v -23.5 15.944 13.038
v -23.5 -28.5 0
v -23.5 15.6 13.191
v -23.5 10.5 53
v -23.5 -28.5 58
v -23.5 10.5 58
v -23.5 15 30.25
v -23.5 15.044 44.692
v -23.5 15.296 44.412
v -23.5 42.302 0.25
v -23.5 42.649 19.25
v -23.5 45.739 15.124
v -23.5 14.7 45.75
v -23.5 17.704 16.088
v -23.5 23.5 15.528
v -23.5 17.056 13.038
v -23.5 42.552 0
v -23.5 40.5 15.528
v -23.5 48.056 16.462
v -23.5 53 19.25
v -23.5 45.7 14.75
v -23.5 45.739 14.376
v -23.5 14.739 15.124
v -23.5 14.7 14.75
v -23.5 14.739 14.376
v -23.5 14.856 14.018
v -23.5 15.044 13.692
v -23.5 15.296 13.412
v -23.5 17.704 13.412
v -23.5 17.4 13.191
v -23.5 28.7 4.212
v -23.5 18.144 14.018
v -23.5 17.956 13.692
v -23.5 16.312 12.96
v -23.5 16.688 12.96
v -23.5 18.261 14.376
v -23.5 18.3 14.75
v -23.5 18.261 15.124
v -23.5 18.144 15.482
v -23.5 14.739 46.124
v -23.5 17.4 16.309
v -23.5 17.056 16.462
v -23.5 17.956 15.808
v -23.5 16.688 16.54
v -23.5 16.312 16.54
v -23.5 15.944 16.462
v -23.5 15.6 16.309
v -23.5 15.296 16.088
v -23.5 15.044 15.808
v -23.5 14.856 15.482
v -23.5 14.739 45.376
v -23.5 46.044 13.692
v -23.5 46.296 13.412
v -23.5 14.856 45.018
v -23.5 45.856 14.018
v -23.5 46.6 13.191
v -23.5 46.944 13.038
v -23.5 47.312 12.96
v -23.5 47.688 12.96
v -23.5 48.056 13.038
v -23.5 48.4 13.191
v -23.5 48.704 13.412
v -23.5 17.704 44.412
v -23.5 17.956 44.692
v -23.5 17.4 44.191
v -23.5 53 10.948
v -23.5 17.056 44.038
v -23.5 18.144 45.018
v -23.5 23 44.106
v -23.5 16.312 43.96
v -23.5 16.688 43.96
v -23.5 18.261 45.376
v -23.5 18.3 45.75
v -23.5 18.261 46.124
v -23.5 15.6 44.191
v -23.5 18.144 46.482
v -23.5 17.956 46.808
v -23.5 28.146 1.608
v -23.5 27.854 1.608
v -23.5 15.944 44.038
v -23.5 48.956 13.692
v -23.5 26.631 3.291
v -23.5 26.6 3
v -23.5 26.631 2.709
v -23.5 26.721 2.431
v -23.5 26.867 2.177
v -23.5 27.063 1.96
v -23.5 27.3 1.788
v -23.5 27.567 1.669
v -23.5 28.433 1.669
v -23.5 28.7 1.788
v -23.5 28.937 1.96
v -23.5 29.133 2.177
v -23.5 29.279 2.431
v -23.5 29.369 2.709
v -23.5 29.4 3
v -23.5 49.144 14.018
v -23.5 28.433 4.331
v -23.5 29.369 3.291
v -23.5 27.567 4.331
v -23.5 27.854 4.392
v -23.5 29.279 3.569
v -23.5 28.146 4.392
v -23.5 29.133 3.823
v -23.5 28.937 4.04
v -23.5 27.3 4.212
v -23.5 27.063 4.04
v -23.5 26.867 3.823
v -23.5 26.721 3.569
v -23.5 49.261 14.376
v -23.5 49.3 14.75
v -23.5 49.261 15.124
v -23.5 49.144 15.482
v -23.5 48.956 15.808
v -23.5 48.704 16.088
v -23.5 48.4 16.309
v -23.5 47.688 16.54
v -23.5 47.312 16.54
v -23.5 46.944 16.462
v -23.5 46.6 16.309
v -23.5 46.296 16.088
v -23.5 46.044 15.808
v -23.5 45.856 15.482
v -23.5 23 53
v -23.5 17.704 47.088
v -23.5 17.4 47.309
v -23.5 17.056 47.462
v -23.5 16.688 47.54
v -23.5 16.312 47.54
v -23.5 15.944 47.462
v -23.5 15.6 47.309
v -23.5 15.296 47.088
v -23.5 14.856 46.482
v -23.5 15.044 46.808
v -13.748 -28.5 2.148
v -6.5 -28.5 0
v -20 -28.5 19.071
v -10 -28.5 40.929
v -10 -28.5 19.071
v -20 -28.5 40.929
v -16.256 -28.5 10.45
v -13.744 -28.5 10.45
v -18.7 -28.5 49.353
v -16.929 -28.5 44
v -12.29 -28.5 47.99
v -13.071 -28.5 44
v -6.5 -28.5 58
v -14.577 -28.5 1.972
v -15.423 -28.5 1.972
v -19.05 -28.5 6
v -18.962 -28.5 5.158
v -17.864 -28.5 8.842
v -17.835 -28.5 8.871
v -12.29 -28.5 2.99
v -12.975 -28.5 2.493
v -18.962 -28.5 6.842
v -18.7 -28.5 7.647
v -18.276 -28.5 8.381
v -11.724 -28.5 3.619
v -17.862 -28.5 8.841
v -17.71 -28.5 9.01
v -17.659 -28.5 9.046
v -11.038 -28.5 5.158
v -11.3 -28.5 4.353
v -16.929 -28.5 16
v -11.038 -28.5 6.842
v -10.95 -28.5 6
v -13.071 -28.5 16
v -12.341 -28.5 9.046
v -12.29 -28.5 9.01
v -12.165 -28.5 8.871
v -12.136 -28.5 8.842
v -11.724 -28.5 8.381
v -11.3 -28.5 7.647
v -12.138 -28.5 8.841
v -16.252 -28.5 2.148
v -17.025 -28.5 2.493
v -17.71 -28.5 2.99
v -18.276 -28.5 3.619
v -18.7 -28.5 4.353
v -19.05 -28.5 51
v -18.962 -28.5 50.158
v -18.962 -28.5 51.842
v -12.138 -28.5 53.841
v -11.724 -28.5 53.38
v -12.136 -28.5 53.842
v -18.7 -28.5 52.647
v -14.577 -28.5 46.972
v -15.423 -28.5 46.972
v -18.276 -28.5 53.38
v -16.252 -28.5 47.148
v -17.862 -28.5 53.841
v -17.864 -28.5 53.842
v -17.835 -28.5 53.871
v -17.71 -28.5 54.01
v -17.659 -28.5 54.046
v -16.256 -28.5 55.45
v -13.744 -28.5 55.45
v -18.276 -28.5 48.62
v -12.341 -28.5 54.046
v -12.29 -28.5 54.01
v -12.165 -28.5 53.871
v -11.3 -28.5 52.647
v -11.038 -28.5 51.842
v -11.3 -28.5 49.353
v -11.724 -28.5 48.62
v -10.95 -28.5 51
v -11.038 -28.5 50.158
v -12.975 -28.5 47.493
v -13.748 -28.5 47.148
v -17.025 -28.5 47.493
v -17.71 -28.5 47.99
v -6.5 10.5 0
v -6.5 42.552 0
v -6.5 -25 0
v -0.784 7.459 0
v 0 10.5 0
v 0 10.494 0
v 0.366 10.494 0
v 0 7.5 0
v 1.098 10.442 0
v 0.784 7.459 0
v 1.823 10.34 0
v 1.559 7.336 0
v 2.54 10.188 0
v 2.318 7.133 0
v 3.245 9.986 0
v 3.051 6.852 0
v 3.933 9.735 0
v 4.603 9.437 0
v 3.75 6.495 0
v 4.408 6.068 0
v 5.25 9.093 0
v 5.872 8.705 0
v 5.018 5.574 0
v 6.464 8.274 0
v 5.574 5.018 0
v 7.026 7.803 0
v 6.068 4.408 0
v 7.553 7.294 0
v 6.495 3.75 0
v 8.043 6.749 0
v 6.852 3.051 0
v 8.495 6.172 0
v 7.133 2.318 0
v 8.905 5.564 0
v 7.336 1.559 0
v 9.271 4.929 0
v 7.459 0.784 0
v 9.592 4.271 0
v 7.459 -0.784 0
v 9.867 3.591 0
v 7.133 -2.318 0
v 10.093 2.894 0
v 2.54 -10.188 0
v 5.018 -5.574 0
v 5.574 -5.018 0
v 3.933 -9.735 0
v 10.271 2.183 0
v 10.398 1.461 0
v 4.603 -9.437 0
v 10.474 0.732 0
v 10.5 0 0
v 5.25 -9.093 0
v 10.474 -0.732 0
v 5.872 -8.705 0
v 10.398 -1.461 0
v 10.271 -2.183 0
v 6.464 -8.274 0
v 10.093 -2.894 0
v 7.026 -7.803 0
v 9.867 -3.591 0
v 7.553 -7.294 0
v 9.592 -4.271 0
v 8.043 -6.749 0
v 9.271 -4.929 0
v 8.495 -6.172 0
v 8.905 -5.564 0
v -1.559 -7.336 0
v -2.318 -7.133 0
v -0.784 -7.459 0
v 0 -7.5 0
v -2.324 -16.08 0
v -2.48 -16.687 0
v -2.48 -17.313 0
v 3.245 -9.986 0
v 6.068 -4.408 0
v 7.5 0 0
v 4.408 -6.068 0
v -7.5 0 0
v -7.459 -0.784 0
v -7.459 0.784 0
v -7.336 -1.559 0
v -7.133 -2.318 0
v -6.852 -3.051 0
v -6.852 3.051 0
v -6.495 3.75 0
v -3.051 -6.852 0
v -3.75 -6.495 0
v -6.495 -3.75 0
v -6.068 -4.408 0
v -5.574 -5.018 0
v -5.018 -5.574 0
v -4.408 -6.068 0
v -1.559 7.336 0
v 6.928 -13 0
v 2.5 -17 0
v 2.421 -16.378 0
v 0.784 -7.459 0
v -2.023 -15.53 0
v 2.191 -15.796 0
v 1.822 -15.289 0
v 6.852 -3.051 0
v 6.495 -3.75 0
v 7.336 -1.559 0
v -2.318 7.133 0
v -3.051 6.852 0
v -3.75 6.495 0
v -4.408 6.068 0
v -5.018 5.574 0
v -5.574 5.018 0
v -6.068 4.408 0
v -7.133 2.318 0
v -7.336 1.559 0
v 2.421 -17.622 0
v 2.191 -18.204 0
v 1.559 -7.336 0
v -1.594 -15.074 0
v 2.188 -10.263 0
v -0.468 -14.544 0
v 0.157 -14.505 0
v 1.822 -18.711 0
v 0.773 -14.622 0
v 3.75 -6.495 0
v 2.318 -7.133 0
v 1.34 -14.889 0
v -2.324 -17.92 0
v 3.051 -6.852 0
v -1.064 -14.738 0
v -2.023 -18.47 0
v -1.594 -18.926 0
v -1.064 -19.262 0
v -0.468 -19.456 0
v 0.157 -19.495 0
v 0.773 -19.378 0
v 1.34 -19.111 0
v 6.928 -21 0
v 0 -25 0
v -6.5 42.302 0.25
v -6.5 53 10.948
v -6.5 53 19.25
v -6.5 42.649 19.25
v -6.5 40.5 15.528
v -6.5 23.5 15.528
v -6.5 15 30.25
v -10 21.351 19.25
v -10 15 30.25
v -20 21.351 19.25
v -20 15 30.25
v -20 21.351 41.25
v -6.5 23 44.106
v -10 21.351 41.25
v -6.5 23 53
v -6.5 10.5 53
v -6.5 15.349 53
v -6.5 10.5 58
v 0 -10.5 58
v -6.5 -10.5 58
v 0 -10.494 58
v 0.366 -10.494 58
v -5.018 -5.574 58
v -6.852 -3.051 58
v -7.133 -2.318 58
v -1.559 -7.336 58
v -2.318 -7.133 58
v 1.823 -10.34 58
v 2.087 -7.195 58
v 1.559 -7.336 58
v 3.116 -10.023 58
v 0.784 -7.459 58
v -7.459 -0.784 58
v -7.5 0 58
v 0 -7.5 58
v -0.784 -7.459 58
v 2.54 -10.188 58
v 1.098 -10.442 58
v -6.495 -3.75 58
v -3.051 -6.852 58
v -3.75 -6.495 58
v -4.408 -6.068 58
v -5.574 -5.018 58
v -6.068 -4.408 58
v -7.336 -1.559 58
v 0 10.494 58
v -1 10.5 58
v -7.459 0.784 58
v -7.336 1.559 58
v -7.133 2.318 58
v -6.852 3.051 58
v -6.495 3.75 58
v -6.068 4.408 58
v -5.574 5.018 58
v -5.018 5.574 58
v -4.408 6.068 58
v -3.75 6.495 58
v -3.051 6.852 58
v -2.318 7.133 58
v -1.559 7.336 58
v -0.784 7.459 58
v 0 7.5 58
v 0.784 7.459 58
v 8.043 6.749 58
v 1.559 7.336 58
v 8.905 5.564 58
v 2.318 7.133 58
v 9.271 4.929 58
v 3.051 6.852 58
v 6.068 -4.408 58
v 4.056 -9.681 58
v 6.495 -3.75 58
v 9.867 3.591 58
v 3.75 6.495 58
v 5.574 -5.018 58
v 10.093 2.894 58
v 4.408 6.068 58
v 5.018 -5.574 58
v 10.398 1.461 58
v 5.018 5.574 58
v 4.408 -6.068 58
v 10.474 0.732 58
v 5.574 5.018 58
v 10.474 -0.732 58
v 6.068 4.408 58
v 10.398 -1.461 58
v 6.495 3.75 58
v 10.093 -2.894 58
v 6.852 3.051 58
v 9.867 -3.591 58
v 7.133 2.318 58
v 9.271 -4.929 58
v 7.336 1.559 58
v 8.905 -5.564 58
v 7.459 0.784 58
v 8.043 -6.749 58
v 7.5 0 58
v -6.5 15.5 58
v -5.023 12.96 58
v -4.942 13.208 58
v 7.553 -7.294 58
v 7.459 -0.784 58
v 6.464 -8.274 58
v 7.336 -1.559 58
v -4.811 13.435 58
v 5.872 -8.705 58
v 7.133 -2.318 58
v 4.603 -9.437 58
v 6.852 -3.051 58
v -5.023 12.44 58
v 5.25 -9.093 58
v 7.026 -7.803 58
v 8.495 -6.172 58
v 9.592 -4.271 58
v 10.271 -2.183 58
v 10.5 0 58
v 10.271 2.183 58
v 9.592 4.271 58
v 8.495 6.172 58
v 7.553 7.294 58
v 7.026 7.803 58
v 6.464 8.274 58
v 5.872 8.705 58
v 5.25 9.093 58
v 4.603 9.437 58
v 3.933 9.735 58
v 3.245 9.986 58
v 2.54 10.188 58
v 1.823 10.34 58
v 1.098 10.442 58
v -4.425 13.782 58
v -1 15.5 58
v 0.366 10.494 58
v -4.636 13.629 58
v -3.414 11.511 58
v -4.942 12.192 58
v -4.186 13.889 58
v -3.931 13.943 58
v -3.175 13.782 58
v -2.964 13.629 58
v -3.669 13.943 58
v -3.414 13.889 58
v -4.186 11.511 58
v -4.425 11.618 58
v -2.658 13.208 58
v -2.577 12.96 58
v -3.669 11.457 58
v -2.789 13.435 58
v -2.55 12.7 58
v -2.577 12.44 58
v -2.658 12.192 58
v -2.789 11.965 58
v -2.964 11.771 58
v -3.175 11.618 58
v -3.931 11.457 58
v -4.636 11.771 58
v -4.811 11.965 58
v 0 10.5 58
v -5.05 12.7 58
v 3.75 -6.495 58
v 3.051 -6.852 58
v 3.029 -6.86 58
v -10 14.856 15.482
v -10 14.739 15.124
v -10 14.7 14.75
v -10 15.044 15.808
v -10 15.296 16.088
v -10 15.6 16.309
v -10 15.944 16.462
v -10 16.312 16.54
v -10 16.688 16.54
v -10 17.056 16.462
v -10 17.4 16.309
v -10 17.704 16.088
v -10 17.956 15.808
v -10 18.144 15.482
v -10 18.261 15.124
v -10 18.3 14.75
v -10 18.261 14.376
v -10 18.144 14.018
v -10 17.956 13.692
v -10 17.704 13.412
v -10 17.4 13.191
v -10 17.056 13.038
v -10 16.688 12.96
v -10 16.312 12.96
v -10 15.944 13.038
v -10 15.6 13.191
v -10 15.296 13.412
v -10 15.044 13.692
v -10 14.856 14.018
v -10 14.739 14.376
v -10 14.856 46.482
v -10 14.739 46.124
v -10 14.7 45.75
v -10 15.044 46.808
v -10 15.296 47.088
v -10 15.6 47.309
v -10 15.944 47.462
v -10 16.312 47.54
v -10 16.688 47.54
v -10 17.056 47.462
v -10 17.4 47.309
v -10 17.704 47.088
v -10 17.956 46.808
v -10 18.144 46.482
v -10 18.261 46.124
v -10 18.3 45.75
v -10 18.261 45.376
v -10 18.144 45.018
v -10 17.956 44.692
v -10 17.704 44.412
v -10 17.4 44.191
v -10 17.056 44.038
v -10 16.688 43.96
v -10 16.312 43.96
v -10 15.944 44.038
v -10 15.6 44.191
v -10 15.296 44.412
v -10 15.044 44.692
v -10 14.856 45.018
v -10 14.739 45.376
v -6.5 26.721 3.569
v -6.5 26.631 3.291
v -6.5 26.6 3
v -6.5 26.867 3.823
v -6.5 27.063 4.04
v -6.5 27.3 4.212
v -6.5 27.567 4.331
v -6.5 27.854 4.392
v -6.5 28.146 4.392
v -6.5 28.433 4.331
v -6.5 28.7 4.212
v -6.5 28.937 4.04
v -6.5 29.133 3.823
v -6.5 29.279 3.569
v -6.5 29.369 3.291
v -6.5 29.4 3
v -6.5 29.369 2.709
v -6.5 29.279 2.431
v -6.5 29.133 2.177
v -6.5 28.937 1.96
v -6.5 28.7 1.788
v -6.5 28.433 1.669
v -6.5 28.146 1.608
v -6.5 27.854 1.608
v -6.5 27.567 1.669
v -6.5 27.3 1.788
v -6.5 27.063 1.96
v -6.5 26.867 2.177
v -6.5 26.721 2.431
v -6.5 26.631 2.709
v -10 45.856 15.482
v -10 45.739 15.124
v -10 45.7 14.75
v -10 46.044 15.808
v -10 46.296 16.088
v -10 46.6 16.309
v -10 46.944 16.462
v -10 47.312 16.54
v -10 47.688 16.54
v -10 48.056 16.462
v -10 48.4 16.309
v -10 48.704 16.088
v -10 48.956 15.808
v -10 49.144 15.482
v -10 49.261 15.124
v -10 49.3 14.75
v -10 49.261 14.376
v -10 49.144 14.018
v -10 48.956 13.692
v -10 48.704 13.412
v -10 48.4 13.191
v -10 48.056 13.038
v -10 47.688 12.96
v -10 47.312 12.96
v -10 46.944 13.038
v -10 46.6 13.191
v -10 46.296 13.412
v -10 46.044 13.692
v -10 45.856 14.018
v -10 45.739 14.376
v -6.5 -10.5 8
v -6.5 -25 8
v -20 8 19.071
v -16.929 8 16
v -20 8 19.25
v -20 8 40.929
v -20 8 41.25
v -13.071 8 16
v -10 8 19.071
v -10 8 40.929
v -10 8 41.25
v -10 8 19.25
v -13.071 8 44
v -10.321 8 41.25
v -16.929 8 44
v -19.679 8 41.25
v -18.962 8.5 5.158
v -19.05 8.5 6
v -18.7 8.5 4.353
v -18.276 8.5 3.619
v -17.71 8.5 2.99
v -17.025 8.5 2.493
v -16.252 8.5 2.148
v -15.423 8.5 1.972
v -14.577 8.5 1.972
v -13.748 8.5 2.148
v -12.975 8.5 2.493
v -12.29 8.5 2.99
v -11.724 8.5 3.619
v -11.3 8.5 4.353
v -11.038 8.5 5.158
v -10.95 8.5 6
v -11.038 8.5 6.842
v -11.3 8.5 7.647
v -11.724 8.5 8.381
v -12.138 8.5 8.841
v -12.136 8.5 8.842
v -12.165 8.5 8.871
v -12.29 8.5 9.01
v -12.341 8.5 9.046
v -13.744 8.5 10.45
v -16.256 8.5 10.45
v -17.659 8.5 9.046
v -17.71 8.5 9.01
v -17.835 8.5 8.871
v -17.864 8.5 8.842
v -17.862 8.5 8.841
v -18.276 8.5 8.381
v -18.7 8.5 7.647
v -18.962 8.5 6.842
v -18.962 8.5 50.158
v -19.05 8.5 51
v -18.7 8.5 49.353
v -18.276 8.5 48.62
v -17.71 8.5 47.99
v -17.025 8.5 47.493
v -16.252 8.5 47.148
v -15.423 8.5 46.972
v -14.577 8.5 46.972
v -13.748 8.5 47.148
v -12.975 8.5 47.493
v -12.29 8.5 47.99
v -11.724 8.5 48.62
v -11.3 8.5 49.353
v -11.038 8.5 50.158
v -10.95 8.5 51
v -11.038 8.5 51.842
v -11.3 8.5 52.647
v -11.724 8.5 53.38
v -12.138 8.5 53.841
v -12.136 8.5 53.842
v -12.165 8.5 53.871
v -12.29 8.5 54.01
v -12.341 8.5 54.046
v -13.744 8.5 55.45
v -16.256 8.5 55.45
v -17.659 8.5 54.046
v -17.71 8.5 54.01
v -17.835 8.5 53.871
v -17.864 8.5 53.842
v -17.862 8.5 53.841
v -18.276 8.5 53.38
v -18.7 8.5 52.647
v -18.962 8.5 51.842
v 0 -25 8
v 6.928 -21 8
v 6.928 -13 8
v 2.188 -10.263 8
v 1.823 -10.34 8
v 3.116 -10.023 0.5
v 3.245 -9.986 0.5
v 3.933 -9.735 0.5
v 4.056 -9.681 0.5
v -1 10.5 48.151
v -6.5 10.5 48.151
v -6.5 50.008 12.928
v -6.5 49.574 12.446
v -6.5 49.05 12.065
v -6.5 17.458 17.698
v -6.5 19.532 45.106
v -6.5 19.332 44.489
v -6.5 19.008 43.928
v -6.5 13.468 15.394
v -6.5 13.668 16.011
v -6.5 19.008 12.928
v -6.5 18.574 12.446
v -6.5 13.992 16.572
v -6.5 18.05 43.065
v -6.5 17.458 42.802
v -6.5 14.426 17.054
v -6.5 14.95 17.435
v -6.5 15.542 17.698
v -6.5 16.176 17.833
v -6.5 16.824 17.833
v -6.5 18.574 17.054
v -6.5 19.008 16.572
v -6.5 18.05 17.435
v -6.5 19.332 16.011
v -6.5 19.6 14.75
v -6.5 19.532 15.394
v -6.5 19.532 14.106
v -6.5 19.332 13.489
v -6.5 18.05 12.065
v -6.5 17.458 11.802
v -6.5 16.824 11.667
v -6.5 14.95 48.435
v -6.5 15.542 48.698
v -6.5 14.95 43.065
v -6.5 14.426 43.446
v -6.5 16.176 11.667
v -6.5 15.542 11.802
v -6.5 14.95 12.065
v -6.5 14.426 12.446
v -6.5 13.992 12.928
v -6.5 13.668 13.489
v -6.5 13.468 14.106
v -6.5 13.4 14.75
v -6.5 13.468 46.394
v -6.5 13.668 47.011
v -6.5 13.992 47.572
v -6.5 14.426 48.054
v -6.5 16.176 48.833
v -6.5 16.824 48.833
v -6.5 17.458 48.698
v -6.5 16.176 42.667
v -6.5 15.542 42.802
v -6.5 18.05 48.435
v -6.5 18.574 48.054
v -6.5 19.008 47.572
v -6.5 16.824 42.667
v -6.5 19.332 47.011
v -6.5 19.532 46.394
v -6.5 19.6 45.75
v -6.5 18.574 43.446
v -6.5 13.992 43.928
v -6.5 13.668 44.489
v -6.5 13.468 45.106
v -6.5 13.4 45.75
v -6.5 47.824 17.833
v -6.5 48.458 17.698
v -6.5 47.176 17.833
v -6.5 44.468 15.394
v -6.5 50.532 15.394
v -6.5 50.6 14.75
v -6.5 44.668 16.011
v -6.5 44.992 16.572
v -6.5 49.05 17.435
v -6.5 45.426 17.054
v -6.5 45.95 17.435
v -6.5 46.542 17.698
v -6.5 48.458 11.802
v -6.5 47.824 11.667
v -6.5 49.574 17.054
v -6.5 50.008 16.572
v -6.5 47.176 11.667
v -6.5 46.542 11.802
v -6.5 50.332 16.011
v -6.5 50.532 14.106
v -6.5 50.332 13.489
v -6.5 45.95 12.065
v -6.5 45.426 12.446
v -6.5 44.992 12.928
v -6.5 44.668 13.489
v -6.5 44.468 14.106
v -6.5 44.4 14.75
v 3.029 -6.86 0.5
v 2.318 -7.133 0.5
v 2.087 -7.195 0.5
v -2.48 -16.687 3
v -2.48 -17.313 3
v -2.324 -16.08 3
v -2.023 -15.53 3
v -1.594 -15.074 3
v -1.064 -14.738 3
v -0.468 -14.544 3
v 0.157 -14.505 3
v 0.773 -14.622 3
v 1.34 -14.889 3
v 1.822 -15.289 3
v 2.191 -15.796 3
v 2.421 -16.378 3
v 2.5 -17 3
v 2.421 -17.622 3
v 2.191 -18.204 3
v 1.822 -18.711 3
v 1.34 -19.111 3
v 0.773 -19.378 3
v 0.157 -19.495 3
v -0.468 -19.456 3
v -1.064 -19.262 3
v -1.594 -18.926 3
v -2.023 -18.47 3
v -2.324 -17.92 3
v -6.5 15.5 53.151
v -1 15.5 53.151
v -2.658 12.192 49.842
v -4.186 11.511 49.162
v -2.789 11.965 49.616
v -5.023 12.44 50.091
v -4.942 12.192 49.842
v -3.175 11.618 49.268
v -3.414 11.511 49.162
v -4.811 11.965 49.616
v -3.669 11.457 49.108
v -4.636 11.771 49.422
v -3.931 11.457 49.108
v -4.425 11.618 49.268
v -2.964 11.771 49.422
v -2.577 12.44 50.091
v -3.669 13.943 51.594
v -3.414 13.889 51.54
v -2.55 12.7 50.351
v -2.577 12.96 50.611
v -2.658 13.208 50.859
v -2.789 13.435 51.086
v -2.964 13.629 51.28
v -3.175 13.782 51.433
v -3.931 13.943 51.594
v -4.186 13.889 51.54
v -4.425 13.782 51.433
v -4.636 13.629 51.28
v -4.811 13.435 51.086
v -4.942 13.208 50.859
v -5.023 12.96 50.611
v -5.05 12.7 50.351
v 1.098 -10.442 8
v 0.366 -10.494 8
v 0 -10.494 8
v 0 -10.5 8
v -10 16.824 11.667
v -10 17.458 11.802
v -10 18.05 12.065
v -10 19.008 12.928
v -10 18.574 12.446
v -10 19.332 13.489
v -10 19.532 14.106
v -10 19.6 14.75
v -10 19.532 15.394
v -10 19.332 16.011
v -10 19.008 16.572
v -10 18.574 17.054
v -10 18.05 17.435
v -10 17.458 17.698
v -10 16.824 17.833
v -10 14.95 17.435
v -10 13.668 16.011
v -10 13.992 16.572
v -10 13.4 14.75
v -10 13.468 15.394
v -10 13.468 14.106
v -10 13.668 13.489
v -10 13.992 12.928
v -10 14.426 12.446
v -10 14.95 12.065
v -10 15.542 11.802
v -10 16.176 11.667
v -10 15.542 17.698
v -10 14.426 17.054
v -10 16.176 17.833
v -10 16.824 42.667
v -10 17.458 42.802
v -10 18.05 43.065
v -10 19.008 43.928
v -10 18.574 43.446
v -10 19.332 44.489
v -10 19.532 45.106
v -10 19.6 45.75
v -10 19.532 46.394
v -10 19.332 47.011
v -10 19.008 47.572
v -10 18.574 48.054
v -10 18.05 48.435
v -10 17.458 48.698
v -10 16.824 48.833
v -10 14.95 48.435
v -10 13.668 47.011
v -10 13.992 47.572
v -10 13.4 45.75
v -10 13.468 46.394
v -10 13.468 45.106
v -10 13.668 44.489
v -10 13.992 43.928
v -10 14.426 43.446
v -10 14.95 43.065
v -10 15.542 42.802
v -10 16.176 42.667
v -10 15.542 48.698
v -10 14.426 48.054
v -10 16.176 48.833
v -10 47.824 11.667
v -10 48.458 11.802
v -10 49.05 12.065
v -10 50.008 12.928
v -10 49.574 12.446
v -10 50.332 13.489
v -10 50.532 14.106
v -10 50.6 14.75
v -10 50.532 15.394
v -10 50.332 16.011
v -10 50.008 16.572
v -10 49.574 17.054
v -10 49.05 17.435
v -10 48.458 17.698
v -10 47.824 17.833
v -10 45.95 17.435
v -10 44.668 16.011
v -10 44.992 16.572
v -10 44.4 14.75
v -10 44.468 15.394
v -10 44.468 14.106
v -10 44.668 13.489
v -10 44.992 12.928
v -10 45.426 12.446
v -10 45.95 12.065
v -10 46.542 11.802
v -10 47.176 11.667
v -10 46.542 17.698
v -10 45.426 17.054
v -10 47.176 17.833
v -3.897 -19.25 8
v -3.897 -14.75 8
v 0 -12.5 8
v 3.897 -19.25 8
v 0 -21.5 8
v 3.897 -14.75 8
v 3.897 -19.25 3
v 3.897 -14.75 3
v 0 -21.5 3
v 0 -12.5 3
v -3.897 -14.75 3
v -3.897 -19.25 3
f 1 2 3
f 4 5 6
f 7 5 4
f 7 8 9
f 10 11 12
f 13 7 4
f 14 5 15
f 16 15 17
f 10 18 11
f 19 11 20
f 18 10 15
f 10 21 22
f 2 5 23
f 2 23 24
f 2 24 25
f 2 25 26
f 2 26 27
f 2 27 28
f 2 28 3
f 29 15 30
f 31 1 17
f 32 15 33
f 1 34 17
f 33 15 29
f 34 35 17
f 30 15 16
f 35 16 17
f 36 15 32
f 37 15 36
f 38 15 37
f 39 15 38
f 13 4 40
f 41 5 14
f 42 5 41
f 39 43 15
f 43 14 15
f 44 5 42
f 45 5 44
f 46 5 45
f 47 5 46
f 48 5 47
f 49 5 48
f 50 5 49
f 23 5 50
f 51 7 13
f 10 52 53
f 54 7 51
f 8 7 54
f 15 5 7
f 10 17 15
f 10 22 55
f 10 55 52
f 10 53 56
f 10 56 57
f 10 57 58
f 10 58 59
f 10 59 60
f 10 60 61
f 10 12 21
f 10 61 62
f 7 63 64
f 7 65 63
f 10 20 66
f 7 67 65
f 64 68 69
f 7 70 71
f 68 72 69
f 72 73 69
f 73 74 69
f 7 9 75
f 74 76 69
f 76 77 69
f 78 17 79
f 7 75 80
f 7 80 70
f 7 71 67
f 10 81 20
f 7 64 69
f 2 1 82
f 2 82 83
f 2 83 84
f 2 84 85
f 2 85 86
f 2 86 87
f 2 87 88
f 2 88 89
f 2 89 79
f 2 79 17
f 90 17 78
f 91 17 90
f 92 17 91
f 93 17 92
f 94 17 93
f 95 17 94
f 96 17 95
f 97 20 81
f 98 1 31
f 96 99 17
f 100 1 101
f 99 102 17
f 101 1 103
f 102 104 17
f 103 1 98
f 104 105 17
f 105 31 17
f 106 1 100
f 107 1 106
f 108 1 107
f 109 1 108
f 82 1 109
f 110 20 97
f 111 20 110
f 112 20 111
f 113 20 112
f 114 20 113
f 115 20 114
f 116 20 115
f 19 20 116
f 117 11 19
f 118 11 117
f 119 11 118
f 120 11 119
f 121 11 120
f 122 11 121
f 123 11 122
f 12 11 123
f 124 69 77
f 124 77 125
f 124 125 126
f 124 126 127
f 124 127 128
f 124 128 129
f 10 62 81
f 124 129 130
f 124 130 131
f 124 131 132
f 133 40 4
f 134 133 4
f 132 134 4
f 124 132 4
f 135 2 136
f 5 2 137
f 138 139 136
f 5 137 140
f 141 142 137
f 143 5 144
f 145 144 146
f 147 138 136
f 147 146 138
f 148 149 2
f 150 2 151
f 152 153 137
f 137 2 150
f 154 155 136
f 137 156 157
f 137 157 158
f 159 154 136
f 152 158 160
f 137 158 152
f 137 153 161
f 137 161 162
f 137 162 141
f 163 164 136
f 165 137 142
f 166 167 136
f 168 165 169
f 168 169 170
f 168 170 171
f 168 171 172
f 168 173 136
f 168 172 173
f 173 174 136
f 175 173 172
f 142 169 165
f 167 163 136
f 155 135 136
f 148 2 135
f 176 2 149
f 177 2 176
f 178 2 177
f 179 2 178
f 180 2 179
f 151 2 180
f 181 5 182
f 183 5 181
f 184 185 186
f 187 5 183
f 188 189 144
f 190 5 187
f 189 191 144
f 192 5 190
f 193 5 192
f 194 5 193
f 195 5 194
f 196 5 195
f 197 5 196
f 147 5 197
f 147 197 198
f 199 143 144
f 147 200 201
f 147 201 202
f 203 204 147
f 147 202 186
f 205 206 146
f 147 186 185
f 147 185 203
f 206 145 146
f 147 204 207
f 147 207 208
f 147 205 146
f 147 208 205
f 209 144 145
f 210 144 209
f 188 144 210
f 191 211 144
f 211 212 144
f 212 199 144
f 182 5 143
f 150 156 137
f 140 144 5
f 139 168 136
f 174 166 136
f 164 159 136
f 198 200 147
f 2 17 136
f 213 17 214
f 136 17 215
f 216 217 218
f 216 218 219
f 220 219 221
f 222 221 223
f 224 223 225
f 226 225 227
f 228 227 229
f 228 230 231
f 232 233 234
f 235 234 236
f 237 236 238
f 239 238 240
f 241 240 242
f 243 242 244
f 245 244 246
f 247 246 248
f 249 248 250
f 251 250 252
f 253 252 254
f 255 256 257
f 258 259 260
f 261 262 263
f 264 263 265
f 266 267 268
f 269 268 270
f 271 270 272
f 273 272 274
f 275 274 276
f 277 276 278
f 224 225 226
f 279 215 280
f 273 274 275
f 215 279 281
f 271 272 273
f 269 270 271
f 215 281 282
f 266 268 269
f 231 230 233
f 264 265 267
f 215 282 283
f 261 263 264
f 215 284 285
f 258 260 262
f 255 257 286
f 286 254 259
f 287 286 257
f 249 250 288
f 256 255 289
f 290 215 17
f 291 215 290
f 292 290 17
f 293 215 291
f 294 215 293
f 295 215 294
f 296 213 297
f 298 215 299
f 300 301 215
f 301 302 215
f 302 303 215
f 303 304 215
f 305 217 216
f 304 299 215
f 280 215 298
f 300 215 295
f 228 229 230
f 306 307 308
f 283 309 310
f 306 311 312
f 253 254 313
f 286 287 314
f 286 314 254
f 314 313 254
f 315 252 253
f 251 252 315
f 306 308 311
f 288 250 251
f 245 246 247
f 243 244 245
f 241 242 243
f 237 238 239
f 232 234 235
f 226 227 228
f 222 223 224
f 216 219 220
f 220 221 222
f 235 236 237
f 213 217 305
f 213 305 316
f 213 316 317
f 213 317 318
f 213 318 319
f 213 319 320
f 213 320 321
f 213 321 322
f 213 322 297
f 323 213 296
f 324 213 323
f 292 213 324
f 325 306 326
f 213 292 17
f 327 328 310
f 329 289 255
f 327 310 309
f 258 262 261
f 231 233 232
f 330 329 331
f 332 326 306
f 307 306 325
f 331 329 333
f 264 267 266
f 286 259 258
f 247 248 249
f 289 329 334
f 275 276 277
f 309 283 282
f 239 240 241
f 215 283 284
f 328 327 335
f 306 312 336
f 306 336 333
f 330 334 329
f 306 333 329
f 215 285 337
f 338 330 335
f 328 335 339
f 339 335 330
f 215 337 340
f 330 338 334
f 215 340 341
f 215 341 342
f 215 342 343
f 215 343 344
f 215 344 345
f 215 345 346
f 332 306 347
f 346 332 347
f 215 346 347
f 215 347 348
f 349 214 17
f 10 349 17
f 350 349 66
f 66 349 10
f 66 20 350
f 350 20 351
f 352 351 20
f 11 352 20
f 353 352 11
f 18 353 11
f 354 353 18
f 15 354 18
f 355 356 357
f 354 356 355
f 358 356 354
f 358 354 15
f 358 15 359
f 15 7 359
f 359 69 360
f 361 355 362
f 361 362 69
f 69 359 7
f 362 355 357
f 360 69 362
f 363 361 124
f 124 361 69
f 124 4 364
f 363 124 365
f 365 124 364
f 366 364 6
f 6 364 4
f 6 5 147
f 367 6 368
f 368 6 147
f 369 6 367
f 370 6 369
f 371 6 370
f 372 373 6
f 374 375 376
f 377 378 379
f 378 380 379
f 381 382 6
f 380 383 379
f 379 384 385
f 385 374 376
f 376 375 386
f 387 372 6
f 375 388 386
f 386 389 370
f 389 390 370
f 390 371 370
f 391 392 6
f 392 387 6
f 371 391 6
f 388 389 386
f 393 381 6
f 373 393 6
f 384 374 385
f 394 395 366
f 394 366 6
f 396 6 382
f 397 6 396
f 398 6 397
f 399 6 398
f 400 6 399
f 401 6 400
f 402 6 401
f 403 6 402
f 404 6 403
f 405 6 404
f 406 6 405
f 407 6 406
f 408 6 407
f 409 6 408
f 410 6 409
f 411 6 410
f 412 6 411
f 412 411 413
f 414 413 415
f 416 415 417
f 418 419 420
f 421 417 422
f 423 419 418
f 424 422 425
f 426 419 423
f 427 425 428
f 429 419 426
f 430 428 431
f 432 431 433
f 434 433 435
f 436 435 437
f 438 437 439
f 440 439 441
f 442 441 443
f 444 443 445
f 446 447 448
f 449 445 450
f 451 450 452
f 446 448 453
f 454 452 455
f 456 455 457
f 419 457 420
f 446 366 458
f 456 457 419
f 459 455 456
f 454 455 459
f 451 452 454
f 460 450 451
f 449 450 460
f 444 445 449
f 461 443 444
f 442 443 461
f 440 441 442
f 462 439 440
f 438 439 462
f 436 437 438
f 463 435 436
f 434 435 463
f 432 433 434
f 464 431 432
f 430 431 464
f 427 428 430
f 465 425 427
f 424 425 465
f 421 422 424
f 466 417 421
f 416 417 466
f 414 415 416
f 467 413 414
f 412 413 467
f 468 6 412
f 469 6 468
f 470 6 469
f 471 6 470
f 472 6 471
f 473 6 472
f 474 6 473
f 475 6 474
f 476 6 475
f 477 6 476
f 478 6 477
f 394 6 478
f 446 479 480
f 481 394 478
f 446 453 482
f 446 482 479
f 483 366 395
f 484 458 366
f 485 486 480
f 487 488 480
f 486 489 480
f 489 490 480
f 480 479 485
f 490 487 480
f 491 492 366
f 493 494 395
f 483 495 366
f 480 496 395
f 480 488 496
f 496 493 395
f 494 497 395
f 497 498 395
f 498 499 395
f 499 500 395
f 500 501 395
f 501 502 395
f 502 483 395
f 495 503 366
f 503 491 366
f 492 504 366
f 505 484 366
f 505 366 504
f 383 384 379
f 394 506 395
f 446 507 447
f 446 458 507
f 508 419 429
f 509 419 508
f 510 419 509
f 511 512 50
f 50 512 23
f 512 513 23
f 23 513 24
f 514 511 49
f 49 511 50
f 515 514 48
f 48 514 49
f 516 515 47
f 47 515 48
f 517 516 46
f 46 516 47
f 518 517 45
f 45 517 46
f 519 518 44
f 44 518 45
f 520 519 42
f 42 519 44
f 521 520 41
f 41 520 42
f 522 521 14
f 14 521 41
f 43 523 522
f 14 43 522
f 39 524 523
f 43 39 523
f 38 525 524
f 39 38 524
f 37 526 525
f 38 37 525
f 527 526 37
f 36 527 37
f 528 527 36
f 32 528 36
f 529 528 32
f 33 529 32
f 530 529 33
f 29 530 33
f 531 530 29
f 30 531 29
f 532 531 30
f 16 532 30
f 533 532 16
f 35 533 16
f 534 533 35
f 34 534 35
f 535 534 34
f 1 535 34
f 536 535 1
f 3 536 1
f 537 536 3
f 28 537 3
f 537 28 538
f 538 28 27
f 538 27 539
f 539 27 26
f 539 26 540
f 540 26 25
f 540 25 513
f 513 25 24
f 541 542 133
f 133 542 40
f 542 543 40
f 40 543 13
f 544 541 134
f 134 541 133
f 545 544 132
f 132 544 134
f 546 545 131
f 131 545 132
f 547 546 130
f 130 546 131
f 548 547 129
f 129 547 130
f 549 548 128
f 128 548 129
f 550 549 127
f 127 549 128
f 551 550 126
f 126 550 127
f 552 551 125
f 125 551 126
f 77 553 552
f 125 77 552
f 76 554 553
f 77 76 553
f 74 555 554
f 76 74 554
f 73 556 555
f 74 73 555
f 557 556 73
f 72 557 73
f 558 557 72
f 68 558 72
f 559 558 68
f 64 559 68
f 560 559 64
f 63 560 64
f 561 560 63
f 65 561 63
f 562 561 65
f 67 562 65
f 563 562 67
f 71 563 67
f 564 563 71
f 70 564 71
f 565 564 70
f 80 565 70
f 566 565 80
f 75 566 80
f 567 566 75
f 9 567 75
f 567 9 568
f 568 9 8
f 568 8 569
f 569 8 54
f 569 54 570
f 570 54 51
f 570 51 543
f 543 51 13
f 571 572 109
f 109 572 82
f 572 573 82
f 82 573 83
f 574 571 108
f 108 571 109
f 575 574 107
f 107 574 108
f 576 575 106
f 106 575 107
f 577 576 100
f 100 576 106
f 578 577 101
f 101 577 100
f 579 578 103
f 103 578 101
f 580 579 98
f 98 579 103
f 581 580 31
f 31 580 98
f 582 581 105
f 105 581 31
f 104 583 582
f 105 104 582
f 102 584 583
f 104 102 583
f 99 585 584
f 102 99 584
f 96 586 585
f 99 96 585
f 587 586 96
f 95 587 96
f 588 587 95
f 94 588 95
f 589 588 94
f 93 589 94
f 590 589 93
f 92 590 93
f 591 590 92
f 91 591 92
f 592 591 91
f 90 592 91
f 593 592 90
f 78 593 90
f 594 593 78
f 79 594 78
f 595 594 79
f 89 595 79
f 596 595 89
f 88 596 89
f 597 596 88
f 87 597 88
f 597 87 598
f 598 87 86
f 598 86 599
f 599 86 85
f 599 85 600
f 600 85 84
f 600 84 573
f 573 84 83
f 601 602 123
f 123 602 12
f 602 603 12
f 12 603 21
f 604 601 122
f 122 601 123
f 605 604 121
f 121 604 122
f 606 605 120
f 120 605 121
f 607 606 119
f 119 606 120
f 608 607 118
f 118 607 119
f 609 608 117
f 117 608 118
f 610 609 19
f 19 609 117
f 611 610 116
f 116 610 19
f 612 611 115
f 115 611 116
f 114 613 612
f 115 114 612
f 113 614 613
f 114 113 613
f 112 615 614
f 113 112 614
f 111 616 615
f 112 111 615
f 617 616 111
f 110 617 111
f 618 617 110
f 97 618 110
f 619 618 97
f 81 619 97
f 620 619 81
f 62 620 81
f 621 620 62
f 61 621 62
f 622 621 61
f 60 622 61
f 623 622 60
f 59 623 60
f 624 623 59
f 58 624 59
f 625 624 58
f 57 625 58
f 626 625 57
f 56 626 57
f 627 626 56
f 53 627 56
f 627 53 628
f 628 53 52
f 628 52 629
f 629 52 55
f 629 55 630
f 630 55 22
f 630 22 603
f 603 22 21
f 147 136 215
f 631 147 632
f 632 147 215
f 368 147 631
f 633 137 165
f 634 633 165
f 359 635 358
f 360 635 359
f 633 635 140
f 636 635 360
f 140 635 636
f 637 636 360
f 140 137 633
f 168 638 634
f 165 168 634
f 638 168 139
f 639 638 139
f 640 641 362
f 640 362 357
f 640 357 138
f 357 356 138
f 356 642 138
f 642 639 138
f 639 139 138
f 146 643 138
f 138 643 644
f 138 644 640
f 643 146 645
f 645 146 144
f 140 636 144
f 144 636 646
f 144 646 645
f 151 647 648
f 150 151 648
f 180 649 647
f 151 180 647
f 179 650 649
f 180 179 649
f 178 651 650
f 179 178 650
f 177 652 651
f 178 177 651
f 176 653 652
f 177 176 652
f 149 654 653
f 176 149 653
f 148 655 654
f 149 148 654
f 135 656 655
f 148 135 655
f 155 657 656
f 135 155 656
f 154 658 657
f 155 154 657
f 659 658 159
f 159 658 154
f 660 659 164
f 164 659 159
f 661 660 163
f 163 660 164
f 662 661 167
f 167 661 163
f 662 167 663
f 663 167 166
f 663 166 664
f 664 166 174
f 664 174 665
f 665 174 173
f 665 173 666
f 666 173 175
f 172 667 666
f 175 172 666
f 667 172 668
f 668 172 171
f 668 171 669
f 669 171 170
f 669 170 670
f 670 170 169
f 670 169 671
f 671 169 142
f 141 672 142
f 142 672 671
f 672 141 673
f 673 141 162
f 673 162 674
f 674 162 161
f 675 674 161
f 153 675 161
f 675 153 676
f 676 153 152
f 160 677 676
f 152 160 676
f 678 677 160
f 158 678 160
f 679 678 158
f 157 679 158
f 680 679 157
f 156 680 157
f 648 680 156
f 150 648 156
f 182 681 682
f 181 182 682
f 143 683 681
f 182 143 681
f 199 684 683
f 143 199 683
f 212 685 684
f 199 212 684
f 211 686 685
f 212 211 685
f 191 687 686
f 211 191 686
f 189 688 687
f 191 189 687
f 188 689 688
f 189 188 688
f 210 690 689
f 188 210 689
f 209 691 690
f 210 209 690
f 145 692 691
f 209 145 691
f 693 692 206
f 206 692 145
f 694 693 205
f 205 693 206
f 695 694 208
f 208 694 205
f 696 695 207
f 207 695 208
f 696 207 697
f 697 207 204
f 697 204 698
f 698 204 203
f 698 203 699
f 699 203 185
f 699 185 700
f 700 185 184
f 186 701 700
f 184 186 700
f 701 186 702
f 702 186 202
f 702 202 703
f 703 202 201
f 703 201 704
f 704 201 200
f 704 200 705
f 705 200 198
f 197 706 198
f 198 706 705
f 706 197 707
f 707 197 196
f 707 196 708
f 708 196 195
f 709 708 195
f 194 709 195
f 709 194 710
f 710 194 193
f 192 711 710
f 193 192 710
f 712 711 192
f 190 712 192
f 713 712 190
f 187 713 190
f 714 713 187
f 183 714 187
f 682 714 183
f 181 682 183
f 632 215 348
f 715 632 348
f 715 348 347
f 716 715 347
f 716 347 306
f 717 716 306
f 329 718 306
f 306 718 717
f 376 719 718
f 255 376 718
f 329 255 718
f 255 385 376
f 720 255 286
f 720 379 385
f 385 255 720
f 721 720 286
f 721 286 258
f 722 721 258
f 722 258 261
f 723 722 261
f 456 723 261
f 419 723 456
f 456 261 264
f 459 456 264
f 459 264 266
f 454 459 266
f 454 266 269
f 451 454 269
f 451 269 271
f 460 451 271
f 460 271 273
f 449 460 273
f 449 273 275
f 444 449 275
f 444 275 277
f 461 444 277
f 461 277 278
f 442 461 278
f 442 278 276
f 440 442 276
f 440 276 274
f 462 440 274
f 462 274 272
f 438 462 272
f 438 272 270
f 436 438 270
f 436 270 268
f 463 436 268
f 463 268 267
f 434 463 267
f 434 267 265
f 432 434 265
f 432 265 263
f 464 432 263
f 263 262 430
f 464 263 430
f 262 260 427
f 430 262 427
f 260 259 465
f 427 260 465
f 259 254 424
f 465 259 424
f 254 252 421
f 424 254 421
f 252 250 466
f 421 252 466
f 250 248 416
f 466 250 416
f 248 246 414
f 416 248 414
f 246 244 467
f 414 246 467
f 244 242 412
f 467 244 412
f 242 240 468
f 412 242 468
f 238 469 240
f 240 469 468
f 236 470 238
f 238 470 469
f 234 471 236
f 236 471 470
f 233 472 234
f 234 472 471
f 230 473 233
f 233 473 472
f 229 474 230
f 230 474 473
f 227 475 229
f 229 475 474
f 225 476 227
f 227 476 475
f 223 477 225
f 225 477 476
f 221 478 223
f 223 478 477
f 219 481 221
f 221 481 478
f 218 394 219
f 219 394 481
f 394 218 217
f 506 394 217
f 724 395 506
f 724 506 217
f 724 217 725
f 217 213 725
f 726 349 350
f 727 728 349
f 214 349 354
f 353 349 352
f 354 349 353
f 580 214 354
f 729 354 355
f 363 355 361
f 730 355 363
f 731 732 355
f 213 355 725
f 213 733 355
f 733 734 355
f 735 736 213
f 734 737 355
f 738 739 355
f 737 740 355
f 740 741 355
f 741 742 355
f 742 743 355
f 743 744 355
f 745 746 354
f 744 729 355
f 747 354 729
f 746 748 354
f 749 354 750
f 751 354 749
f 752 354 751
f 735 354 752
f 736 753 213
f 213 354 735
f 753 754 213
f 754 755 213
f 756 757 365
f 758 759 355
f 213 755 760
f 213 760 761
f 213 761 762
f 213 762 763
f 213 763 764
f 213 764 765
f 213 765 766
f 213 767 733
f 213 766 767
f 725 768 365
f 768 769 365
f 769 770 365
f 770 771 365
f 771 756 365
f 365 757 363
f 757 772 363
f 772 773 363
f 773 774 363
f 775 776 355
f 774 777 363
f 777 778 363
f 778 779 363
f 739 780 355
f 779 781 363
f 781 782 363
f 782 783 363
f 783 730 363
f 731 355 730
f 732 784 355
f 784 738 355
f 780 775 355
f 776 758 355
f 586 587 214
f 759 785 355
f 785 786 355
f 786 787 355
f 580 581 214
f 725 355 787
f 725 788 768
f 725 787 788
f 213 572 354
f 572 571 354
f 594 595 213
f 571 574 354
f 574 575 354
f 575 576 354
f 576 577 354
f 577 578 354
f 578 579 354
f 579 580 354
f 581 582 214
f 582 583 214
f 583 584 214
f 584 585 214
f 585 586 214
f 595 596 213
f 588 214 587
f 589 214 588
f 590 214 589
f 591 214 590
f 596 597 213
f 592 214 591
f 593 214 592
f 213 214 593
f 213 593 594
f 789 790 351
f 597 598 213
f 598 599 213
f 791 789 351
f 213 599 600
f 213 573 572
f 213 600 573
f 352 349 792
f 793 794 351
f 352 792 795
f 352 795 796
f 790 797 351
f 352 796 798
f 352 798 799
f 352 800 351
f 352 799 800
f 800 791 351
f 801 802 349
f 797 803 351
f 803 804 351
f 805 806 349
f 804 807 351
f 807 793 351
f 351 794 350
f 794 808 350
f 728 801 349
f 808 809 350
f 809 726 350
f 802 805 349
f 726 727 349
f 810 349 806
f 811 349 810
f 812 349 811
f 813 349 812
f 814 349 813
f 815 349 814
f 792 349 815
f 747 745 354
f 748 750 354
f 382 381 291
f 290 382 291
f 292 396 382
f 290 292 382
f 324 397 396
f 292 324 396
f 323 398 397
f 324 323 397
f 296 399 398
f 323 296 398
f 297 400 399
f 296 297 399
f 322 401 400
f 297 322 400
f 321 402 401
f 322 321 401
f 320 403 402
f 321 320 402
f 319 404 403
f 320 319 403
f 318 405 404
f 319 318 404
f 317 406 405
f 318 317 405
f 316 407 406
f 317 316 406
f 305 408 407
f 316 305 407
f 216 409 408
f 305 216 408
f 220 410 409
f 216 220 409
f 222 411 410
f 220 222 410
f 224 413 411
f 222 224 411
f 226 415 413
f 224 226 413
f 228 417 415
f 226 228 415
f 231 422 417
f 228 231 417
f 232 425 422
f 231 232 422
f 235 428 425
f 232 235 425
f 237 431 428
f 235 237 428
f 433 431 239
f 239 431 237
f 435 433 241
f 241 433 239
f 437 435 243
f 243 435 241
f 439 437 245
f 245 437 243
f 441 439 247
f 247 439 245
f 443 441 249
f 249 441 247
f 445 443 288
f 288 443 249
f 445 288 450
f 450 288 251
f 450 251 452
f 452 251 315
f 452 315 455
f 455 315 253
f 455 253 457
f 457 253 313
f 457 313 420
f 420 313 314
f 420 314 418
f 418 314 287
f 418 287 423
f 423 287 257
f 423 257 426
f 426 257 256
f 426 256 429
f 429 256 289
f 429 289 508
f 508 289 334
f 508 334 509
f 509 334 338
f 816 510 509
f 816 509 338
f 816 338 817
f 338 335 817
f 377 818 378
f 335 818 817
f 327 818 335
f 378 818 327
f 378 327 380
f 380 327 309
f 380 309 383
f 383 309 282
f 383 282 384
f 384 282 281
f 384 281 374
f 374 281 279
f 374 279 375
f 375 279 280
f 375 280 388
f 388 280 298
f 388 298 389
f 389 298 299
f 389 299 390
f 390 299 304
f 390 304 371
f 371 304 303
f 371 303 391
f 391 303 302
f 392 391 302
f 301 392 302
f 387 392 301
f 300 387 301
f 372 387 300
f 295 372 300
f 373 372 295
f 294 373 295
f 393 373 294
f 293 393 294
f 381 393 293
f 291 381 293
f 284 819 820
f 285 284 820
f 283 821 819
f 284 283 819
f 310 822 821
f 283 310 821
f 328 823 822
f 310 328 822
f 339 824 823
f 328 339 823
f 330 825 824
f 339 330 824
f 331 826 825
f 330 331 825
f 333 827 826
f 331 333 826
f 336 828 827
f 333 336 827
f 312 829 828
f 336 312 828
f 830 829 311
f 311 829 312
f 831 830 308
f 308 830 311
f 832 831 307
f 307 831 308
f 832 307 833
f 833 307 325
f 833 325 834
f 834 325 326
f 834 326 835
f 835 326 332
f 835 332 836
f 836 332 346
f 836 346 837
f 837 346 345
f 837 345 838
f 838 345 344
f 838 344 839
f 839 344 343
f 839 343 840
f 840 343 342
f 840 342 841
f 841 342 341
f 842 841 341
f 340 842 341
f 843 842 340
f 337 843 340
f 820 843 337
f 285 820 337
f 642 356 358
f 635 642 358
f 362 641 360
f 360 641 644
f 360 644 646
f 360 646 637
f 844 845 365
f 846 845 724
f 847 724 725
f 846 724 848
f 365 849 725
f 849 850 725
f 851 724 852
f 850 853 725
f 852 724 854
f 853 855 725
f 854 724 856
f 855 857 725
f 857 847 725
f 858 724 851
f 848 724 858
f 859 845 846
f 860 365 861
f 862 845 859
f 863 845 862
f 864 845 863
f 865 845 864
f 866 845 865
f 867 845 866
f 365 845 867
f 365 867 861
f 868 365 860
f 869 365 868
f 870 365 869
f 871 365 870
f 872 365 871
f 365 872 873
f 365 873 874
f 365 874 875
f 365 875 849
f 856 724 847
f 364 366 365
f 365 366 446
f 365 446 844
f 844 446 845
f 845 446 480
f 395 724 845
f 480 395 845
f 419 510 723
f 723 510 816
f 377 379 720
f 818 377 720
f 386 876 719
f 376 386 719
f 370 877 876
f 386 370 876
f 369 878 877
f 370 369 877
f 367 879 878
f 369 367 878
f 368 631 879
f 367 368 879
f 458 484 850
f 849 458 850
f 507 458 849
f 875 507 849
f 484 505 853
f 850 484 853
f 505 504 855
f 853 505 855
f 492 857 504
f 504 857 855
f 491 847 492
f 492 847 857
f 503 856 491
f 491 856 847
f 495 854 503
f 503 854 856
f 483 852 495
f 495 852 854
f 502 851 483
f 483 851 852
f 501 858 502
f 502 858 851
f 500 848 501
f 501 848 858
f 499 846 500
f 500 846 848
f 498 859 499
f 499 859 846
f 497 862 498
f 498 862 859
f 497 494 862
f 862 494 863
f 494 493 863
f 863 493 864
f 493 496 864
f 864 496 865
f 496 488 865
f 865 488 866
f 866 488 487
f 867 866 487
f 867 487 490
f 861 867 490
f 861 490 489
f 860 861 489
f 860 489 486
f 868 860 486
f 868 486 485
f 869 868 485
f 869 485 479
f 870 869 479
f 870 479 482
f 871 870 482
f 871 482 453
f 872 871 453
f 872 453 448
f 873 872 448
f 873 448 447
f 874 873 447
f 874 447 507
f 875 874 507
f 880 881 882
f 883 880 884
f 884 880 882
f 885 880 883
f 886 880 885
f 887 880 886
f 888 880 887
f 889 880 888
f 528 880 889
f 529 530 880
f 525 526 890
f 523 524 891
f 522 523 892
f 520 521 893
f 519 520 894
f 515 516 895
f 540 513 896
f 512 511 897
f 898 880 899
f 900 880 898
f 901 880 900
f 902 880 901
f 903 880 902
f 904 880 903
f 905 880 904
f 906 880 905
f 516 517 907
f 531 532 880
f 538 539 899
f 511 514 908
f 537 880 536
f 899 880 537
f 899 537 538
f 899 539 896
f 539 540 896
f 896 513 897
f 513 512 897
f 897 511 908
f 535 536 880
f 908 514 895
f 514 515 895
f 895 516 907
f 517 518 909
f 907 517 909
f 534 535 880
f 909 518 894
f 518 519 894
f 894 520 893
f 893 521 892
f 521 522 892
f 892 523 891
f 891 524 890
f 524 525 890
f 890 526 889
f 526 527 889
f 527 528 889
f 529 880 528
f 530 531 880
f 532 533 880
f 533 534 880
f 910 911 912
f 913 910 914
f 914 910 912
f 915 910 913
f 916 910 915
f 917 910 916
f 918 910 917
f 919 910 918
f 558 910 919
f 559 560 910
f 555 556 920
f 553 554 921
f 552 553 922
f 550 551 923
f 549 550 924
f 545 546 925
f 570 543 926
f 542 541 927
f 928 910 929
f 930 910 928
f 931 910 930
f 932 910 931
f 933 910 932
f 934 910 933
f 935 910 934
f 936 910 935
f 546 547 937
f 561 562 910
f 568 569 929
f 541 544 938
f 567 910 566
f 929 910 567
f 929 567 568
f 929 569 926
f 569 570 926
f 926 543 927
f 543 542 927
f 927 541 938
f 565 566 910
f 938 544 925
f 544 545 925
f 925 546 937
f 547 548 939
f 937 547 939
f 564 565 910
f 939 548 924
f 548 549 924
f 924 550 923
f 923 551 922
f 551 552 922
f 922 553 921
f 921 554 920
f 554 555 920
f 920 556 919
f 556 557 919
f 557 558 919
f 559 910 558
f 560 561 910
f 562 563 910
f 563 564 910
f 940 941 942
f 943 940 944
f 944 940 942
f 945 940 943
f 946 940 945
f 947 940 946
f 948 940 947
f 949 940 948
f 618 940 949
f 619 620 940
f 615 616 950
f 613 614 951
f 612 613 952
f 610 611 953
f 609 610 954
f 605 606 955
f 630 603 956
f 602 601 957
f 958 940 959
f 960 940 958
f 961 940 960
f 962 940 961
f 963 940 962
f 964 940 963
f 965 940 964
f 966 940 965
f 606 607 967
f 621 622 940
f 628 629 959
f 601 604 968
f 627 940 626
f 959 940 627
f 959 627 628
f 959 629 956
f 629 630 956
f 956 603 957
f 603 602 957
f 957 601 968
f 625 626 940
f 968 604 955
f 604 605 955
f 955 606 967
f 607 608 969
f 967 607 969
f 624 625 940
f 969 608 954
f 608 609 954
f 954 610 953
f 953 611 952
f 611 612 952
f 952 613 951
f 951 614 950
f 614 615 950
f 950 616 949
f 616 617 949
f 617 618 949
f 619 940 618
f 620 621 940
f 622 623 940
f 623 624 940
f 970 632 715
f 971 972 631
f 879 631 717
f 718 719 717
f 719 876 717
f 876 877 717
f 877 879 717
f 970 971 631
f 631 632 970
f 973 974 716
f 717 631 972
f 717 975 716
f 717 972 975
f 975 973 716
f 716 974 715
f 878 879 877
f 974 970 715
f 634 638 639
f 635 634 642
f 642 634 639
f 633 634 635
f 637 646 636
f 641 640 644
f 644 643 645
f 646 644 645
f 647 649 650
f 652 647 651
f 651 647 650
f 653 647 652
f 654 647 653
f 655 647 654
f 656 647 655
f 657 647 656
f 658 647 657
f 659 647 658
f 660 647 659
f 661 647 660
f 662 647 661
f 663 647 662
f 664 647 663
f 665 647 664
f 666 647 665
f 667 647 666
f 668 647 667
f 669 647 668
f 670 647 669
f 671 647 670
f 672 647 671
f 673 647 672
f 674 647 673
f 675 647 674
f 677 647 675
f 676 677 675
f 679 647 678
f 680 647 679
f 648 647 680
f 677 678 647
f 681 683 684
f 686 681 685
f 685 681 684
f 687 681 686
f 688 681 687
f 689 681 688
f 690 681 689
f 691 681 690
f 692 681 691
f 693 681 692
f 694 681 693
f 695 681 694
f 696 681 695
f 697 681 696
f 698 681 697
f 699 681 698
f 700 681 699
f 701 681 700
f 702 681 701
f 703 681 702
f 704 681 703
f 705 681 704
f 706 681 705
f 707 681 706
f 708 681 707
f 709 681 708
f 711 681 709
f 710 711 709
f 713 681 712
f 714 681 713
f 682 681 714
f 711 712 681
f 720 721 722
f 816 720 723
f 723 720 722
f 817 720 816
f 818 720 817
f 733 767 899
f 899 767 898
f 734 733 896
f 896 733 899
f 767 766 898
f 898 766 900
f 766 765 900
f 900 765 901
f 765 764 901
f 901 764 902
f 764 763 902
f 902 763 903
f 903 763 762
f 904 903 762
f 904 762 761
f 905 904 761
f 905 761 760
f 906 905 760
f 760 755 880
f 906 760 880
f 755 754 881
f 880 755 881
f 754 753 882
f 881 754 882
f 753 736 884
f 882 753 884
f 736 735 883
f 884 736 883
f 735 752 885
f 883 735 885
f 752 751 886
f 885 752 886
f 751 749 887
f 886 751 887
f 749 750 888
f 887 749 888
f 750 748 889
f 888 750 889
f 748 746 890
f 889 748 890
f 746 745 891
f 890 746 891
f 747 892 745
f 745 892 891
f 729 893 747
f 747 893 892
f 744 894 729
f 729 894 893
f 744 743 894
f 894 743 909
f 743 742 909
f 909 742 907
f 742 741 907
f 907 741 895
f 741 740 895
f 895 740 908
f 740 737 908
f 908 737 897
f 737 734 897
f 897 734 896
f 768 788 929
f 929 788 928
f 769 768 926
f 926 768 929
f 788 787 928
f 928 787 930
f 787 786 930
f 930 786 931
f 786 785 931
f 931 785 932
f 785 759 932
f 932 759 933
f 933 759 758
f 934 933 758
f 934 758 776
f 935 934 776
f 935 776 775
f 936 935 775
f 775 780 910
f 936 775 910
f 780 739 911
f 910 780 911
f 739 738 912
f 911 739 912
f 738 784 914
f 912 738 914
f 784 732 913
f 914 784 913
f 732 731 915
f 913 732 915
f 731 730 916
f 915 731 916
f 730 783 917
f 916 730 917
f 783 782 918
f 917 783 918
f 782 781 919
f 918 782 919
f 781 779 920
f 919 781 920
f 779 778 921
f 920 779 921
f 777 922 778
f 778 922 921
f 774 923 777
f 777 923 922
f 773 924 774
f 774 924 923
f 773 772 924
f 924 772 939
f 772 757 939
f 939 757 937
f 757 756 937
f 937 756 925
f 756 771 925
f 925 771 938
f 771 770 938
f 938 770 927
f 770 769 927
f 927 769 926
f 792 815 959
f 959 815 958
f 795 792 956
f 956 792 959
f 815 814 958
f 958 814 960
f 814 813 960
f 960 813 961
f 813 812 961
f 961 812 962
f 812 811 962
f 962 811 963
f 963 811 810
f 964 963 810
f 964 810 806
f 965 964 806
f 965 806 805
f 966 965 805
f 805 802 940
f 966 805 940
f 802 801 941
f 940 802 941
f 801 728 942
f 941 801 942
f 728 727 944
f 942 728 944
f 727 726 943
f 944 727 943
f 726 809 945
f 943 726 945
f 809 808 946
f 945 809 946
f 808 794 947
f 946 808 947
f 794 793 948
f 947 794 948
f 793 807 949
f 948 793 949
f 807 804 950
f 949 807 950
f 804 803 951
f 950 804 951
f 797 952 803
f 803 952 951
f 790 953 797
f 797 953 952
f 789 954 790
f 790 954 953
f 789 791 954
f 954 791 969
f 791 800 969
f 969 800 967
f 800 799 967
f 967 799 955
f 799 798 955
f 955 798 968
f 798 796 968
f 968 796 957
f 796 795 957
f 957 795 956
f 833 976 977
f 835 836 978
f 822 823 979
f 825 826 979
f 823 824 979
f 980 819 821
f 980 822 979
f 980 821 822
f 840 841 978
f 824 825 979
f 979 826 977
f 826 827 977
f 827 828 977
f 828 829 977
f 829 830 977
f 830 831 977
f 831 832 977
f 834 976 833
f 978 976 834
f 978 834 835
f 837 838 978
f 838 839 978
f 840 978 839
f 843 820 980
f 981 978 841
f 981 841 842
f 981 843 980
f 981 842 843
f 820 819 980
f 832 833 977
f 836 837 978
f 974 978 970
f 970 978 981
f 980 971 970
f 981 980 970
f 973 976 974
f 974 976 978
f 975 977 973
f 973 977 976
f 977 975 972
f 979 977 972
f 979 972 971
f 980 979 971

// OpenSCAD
// file: inc/bearing.scad
// PRUSA iteration3
// Bearing holders
// GNU GPL v3
// Josef Průša <iam@josefprusa.cz> and contributors
// http://www.reprap.org/wiki/Prusa_Mendel
// http://prusamendel.org

bearing_diameter = 15;
thinwall         = 3;
bearing_size     = bearing_diameter + 2 * thinwall;


module horizontal_bearing_base(bearings=1){
    translate(v=[0,0,6]) cube(size = [24,8+bearings*25,12], center = true);	
}

module horizontal_bearing_holes(bearings=1){
    cutter_lenght     = 10+bearings*25;
    one_holder_lenght = 8+25;
    holder_lenght     = 8+bearings*25;
 
    //Main bearing cut
    difference(){
        translate(v=[0,0,12]) rotate(a=[90,0,0]) translate(v=[0,0,-cutter_lenght/2]) cylinder(h = cutter_lenght, r=bearing_diameter/2, $fn=50);
        
        //Bearing retainers
        translate(v=[0,1-holder_lenght/2,3]) cube(size = [24,6,8], center = true);
        translate(v=[0,-1+holder_lenght/2,3]) cube(size = [24,6,8], center = true);
    }
 
    //Ziptie cutouts
    ziptie_cut_ofset = 0;

    for (i = [0 : bearings-1]){
        // For easier positioning I move them by half of one 
        // bearing holder then add each bearign lenght and then center again
        translate(v=[0,-holder_lenght/2,0]) translate(v=[0,one_holder_lenght/2+i*25,0]) difference(){
            union(){
                translate(v=[0,2-6,12]) rotate(a=[90,0,0]) translate(v=[0,0,0]) cylinder(h = 4, r=12.5, $fn=50);
                translate(v=[0,2+6,12]) rotate(a=[90,0,0]) translate(v=[0,0,0]) cylinder(h = 4, r=12.5, $fn=50);
            }
            translate(v=[0,10,12]) rotate(a=[90,0,0]) translate(v=[0,0,0]) cylinder(h = 24, r=10, $fn=50);
        }
    }
}

module horizontal_bearing_test(){
    difference(){
        horizontal_bearing_base(1);
        horizontal_bearing_holes(1);
    }
    translate(v=[30,0,0]) difference(){
        horizontal_bearing_base(2);
        horizontal_bearing_holes(2);
    }

    translate(v=[60,0,0]) difference(){
        horizontal_bearing_base(3);
        horizontal_bearing_holes(3);
    }
}

module vertical_bearing_base(){
    translate(v=[-2-bearing_size/4,0,29]) cube(size = [4+bearing_size/2,bearing_size,58], center = true);
    cylinder(h = 58, r=bearing_size/2, $fn = 90);
}

module vertical_bearing_holes(){
    translate(v=[0,0,-1]) cylinder(h = 62, r=bearing_diameter/2, $fn = 60);
    rotate(a=[0,0,-70]) translate(v=[8,0,31.5]) cube(size = [5,1,62], center = true);
}

//Final part
difference(){
    vertical_bearing_base();
    vertical_bearing_holes();
}
// file: inc/x-end.scad
// PRUSA iteration3
// X end prototype
// GNU GPL v3
// Josef Průša <iam@josefprusa.cz> and contributors
// http://www.reprap.org/wiki/Prusa_Mendel
// http://prusamendel.org

use <bearing.scad>

rod_distance = 45;


module x_end_base(){
	//Main block
	height = 58;
	translate(v=[-15,-9,height/2]) cube(size = [17,39,height], center = true);
	
	//Bearing holder
 	vertical_bearing_base();	
	
	//Nut trap
 	// Cube
 	translate(v=[-2-2,-17,4]) cube(size = [8,16,8], center = true);

 	//Hexagon
 	translate(v=[0,-17,0]) rotate([0,0,30]) cylinder(h = 8, r=8, $fn = 6);
}

module x_end_holes(){
    vertical_bearing_holes();
    
    //Belt hole
    translate(v=[-1,0,0]) difference(){
	   translate(v=[-5.5-10+1.5,-15,30]) cube(size = [10,46,28], center = true);
    	// Nice edges
    	translate(v=[-5.5-10+1.5,-10,30+23]) rotate([0,45,0]) cube(size = [10,46,28], center = true);
    	translate(v=[-5.5-10+1.5,-10,30+23]) rotate([0,-45,0]) cube(size = [10,46,28], center = true);
    	translate(v=[-5.5-10+1.5,-10,30-23]) rotate([0,45,0]) cube(size = [10,46,28], center = true);
    	translate(v=[-5.5-10+1.5,-10,30-23]) rotate([0,-45,0]) cube(size = [10,46,28], center = true);

    }

    //Bottom pushfit rod
    translate(v=[-15,-41.5,6]) rotate(a=[-90,0,0]) pushfit_rod(8.1,50);

    //Top pushfit rod
    translate(v=[-15,-41.5,rod_distance+6]) rotate(a=[-90,0,0]) pushfit_rod(8.1,50);
    
    //Nut trap
    translate(v=[0,-17,-0.5]) cylinder(h = 4, r1=2.5, r2=2.5, $fn=25);
    translate(v=[0,-17,3]) rotate([0,0,30]) cylinder(h = 10, r=4.5, $fn = 6);
}

module pushfit_rod(diameter,length){
    cylinder(h = length, r=diameter/2, $fn=30);
    difference(){
        translate(v=[0,-diameter/2.85,length/2]) rotate([0,0,45]) cube(size = [diameter/2,diameter/2,length], center = true);
        translate(v=[0,-diameter/4-diameter/2-0.4,length/2]) rotate([0,0,0]) cube(size = [diameter,diameter/2,length], center = true);
    }
}

//Final part
module x_end_plain(){
    difference(){
        x_end_base();
        x_end_holes();
    }
}

x_end_plain();
// main file
// X carriage 30mm spacing
// Based on Josef Prusa vanilla x-end-motor design (https://github.com/josefprusa/Prusa3-vanilla)
// By Julio Galaron (@jgalaron)
// GNU GPL v3

use <inc/x-end.scad>

module x_end_motor_base(){
	difference(){
		translate([-6.5,10.5,48]) cube([5.5,5,10]);
        translate([-.5,-35.5,17]) rotate([-45,0,0])translate([-6.5,10.5,48])cube([6.5,6,20]);
		translate([-3.8,12.7,30]) cylinder(h = 70, r=2.5/2, $fn=30);
	}

    x_end_base();
    translate(v=[-15,31,26.5]) cube(size = [17,44,53], center = true);
}

module x_end_motor_holes(){

    x_end_holes();
 
    translate(v=[-1,32,30.25]){

        // Belt hole
        translate(v=[-14,-1,0]) cube(size = [10,46,22], center = true);
        
        // Motor mounting holes
        translate(v=[20,-15.5,-15.5]) rotate(a=[0,-90,0]) rotate(a=[0,0,90]) cylinder(h = 70, r=1.8, $fn=30);
        translate(v=[1,-15.5,-15.5])  rotate(a=[0,-90,0]) rotate(a=[0,0,90]) cylinder(h = 10, r=3.1, $fn=30);
     
        translate(v=[20,-15.5,15.5])  rotate(a=[0,-90,0]) rotate(a=[0,0,90]) cylinder(h = 70, r=1.8, $fn=30);
        translate(v=[1,-15.5,15.5])   rotate(a=[0,-90,0]) rotate(a=[0,0,90]) cylinder(h = 10, r=3.1, $fn=30);

        translate(v=[20,15.5,-15.5])  rotate(a=[0,-90,0]) rotate(a=[0,0,90]) cylinder(h = 70, r=1.8, $fn=30);
        translate(v=[1,15.5,-15.5])   rotate(a=[0,-90,0]) rotate(a=[0,0,90]) cylinder(h = 10, r=3.1, $fn=30);

        translate(v=[20,15.5,15.5])   rotate(a=[0,-90,0]) rotate(a=[0,0,90]) cylinder(h = 70, r=1.8, $fn=30);
        translate(v=[1,15.5,15.5])    rotate(a=[0,-90,0]) rotate(a=[0,0,90]) cylinder(h = 10, r=3.1, $fn=30);

        //Material saving cutout 
        translate(v=[-10,12,10]) cube(size = [60,42,42], center = true);

        //Material saving cutout
        translate(v=[-10,40,-30]) rotate(a=[45,0,0])  cube(size = [60,42,42], center = true);

        //Motor shaft cutout
        translate(v=[0,0,0]) rotate(a=[0,-90,0]) rotate(a=[0,0,90]) cylinder(h = 70, r=17, $fn=6);
    }

    translate([25,28,3]) rotate(a=[0,-90,0]) rotate(a=[0,0,90]) cylinder(h = 70, r=2.8/2, $fn=30);
}

module x_end_motor(){
    difference(){
        x_end_motor_base();
        x_end_motor_holes();
    }
}

//final part
x_end_motor();
